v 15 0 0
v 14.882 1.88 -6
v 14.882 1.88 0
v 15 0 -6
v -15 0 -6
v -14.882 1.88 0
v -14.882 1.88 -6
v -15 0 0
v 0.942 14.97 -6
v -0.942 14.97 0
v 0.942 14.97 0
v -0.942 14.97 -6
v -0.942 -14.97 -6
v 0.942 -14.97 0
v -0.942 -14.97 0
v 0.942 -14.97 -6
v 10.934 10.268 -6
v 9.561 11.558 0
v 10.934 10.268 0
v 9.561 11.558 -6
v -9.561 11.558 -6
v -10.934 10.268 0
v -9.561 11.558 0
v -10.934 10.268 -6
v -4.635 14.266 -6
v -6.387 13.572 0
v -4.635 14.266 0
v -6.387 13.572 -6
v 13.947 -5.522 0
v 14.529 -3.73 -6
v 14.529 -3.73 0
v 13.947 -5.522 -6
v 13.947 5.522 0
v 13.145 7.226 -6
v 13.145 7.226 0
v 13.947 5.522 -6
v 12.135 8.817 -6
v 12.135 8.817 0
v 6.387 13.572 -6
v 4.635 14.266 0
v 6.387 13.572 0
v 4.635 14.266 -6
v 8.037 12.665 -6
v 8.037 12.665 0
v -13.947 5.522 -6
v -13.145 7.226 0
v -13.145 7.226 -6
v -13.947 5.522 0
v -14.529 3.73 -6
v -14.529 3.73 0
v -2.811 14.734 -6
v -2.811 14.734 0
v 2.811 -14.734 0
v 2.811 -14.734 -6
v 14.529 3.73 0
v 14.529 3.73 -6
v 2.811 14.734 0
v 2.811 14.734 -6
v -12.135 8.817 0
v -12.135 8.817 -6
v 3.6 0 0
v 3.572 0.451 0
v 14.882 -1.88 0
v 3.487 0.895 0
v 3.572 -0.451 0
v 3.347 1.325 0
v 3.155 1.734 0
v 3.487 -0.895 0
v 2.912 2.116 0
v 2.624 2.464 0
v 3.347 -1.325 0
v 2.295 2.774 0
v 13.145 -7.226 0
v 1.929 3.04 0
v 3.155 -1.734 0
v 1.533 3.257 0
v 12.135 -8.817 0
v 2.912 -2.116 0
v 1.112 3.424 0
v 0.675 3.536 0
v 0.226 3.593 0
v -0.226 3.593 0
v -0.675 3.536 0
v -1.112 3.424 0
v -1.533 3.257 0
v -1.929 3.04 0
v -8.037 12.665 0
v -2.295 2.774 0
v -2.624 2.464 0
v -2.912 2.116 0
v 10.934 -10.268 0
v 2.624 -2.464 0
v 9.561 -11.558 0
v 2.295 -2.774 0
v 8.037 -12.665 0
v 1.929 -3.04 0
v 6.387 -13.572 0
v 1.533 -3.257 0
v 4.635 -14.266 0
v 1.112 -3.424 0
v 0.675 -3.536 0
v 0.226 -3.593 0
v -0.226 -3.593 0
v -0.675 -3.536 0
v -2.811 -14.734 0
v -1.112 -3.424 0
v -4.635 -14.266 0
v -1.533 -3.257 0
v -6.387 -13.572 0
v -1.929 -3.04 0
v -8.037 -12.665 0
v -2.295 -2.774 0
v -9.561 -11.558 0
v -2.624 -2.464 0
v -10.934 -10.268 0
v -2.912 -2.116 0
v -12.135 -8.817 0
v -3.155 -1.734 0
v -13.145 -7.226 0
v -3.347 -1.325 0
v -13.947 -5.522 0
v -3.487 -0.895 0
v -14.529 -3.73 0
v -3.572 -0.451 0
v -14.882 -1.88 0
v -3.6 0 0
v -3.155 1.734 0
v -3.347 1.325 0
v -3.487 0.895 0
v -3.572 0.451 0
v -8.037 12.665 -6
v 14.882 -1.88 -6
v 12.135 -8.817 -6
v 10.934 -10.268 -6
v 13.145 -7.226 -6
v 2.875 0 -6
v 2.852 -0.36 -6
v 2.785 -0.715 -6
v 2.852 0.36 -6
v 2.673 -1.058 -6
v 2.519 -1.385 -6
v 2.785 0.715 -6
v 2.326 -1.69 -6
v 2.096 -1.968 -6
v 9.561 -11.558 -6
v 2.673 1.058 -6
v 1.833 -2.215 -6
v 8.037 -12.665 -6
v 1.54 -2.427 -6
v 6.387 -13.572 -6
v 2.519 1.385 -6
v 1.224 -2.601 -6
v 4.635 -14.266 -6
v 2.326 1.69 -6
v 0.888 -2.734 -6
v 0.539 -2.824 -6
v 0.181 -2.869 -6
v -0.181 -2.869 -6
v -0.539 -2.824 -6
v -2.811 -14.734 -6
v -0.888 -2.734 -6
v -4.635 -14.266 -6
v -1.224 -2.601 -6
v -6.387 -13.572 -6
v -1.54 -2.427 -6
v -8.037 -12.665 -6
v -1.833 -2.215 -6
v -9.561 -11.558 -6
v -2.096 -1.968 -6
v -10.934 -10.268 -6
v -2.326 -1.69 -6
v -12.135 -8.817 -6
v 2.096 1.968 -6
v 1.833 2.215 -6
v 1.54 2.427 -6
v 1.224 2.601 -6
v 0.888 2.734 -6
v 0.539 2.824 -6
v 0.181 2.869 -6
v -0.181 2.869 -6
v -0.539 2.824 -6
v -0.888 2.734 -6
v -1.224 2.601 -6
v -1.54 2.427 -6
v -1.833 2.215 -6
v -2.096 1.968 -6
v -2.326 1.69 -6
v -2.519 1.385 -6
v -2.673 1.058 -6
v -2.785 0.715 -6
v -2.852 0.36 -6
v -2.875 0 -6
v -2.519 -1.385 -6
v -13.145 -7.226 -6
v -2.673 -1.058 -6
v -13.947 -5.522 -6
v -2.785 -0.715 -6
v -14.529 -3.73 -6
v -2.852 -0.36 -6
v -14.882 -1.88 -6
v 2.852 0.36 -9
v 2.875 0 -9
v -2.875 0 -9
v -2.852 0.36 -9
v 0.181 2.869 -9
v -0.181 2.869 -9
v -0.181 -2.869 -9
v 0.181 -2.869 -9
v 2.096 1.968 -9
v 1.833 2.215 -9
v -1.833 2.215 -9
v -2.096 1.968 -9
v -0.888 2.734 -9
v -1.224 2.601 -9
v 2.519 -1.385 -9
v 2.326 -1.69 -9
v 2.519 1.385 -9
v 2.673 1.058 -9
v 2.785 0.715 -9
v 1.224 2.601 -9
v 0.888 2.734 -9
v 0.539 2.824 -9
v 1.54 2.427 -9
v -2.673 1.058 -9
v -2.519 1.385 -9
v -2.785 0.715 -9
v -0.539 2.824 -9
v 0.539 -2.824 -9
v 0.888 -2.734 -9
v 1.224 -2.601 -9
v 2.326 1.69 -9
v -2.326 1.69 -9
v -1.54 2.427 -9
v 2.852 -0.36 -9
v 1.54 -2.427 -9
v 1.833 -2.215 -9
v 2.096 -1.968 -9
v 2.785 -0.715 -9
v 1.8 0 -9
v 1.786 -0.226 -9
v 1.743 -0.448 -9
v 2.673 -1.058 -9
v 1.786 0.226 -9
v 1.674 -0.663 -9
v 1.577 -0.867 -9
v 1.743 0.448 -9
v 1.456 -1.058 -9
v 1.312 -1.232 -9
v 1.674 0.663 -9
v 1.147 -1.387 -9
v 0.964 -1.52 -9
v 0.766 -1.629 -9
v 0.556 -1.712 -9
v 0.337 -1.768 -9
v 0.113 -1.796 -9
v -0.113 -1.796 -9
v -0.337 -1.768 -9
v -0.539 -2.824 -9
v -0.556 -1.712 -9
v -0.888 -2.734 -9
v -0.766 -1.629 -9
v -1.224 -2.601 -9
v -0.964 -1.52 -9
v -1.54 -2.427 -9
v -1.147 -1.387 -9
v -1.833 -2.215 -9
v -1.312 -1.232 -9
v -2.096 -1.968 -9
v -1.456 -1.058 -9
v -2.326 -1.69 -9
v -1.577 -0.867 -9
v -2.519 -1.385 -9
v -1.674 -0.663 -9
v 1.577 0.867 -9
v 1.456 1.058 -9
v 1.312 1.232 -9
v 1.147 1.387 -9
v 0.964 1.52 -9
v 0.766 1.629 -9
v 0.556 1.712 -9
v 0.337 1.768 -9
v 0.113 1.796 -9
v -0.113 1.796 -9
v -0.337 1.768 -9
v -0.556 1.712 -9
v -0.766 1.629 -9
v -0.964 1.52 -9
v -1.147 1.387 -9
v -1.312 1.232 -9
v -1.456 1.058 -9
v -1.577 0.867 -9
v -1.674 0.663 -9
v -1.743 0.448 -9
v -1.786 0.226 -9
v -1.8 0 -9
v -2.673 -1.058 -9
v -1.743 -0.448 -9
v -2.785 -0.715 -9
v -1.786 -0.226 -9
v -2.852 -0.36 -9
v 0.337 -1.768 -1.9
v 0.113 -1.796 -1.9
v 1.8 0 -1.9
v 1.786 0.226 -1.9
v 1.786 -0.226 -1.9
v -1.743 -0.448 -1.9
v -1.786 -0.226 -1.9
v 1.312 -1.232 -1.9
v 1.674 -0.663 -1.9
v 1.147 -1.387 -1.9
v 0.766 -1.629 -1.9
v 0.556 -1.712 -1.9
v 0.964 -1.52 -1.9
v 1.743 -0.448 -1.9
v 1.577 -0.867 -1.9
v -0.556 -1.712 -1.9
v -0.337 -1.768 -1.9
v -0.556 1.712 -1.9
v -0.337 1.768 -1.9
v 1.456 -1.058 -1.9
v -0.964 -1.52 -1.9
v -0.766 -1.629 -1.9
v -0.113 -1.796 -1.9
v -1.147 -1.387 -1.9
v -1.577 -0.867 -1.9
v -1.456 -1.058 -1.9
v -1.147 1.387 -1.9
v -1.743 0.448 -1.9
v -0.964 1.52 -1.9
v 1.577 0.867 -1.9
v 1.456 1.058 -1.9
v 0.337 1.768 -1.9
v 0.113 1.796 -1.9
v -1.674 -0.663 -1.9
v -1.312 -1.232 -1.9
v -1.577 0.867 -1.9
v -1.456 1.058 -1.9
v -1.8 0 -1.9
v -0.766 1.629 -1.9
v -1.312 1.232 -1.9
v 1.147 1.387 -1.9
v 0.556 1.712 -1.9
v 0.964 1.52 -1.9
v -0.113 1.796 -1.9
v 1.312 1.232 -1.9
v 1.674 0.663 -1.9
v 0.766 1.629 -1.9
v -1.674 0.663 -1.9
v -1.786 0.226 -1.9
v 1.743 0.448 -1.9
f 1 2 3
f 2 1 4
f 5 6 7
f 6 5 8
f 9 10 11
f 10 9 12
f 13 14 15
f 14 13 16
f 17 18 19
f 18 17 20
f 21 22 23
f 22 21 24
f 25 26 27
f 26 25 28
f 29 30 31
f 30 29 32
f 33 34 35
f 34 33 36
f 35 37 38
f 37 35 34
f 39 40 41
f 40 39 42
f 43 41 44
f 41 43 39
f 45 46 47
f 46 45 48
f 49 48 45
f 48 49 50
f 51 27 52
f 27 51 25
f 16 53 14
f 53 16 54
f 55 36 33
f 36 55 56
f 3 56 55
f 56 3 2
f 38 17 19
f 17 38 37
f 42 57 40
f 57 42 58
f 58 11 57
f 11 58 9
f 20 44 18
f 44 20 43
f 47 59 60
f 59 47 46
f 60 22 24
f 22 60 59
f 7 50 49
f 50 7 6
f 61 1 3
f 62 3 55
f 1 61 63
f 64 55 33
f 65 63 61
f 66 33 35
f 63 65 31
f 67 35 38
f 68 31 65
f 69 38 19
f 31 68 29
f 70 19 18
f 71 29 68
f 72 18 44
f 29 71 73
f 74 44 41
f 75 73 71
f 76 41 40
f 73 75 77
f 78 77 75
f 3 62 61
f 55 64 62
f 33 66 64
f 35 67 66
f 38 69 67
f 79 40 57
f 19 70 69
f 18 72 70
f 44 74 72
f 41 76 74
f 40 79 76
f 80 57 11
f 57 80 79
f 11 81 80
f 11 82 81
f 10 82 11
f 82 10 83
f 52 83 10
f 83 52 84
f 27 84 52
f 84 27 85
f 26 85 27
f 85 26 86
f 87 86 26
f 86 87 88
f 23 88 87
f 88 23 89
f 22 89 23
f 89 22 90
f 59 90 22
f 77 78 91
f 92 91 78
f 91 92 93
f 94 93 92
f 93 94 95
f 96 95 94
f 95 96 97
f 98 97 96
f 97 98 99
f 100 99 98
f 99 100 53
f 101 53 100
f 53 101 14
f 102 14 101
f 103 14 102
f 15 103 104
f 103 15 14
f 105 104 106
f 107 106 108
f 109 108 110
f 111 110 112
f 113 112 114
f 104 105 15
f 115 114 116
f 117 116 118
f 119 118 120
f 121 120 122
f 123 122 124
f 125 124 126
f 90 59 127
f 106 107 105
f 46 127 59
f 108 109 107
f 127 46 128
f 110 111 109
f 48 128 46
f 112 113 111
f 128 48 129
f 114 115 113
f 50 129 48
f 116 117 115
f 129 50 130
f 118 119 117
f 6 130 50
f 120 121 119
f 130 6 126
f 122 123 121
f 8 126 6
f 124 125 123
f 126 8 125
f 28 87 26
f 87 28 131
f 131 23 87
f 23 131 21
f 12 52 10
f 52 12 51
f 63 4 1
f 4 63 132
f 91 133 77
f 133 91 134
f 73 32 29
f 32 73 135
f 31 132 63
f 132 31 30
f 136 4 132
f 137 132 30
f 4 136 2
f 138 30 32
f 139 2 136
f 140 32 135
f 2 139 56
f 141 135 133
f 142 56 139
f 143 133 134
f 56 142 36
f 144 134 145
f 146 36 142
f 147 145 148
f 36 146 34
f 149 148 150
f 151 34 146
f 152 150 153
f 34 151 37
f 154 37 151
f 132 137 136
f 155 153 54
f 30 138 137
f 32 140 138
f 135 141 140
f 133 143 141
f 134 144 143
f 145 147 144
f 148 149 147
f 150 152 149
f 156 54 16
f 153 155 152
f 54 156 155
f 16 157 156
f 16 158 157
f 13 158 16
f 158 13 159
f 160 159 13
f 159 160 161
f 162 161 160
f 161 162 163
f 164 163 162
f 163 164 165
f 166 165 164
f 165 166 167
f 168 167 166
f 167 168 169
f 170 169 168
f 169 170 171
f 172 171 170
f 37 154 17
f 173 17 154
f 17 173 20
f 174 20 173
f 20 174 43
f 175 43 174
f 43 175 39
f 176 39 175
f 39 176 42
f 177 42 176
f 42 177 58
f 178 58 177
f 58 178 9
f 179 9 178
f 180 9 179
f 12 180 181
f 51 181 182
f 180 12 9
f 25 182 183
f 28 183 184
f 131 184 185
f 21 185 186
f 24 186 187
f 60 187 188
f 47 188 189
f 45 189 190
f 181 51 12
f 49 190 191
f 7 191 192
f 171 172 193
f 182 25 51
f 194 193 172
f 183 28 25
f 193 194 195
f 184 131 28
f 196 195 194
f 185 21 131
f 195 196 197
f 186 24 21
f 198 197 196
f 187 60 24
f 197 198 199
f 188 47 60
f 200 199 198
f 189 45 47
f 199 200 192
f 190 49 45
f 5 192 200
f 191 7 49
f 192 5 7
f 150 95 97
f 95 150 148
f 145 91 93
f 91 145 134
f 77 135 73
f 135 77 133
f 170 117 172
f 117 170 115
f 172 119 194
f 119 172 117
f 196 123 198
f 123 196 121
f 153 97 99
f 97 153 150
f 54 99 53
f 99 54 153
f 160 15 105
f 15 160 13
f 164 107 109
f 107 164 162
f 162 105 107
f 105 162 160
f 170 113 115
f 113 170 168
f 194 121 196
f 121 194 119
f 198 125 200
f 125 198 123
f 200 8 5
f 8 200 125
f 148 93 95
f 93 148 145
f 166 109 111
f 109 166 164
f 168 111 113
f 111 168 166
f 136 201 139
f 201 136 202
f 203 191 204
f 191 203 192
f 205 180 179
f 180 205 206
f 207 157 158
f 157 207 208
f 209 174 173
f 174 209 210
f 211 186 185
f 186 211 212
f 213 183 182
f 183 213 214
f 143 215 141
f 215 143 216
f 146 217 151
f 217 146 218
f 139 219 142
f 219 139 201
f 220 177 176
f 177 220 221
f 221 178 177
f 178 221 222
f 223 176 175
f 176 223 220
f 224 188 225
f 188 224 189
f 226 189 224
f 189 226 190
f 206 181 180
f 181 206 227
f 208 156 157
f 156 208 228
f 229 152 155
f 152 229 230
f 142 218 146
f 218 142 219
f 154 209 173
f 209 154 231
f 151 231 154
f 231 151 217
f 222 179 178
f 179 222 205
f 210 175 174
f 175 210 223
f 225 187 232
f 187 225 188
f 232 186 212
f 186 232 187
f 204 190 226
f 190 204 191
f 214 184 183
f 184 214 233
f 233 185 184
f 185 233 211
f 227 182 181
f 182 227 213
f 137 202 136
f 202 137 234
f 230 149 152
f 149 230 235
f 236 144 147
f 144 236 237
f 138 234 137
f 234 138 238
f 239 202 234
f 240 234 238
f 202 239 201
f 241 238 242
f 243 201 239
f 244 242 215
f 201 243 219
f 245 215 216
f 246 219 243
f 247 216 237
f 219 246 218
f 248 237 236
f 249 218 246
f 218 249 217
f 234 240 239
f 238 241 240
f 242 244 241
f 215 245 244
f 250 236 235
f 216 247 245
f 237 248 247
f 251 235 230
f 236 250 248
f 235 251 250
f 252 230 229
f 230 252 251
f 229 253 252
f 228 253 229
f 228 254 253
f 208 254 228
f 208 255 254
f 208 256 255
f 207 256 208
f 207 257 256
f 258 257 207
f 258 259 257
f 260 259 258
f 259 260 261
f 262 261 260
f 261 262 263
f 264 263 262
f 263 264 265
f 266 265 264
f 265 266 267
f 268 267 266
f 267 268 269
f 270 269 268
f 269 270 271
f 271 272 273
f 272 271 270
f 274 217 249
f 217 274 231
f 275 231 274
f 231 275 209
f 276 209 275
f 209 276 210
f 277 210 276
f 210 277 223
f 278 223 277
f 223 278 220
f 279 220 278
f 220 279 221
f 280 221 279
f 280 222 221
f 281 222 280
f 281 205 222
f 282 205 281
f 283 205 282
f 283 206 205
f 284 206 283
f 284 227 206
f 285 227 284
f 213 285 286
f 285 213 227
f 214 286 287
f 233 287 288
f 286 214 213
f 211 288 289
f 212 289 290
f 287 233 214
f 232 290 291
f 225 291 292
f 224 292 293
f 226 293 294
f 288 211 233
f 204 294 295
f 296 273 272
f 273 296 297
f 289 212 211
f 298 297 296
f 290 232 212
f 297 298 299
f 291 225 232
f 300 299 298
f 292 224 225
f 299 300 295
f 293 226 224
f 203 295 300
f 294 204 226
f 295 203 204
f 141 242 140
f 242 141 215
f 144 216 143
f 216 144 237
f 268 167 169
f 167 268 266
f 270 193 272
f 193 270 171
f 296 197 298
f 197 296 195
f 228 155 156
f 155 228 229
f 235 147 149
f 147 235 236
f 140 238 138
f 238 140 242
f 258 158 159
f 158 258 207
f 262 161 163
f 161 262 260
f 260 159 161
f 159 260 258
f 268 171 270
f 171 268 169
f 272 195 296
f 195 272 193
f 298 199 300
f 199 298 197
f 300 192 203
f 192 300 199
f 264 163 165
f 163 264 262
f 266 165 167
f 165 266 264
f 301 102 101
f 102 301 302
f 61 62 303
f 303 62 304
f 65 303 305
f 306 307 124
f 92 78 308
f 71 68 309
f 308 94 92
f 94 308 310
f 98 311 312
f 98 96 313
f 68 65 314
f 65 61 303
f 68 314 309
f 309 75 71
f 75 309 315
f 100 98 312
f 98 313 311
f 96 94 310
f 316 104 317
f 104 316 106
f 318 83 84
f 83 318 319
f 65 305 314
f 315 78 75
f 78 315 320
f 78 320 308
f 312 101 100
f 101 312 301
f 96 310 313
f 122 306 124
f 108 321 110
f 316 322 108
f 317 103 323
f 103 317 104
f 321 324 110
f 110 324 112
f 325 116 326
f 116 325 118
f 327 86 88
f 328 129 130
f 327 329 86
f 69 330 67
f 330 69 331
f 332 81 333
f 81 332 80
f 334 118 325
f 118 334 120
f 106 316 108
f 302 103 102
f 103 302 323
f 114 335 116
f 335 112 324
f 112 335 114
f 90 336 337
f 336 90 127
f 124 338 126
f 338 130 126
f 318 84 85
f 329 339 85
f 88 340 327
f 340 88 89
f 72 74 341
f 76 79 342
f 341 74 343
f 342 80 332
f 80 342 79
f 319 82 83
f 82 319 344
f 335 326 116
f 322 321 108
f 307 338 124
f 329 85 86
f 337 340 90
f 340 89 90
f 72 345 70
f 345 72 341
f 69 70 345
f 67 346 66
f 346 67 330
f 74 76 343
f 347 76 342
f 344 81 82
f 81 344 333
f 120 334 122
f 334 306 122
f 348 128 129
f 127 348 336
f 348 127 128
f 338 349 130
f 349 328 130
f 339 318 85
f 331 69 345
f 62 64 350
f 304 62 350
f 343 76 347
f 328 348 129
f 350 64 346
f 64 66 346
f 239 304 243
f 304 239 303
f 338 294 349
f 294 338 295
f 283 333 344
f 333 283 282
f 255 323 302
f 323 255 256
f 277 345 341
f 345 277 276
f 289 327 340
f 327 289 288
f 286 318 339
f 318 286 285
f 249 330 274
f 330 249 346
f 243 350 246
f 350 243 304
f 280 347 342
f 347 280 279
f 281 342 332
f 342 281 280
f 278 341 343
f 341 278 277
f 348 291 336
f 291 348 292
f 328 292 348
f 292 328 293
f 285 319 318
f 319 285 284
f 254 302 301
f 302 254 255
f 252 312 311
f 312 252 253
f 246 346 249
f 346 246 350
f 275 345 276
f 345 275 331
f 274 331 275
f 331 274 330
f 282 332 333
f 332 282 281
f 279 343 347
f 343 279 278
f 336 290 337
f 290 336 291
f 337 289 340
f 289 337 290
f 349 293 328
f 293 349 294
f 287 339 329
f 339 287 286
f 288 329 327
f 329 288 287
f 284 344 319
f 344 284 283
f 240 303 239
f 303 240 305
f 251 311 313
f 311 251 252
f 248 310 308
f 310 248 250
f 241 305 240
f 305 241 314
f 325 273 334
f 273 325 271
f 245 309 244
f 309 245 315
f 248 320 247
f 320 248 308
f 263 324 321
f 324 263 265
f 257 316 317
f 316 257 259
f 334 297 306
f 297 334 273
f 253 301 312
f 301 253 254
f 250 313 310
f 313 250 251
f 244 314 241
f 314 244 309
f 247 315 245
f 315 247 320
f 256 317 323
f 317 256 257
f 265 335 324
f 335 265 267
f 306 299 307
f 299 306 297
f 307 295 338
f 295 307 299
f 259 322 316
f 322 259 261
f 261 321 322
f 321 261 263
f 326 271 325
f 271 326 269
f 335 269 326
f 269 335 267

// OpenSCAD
$fn = 50;


difference() {
	union() {
		translate(v = [0, 0, -6.0000000000]) {
			cylinder(h = 6, r = 15.0000000000);
		}
		translate(v = [0, 0, -9.0000000000]) {
			cylinder(h = 9, r = 2.8750000000);
		}
	}
	union() {
		translate(v = [0, 0, 0]) {
			rotate(a = [0, 0, 0]) {
				difference() {
					union() {
						translate(v = [0, 0, -9.0000000000]) {
							cylinder(h = 9, r = 1.5000000000);
						}
						translate(v = [0, 0, -1.9000000000]) {
							cylinder(h = 1.9000000000, r1 = 1.8000000000, r2 = 3.6000000000);
						}
						translate(v = [0, 0, -9.0000000000]) {
							cylinder(h = 9, r = 1.8000000000);
						}
						translate(v = [0, 0, -9.0000000000]) {
							cylinder(h = 9, r = 1.5000000000);
						}
					}
					union();
				}
			}
		}
	}
}
